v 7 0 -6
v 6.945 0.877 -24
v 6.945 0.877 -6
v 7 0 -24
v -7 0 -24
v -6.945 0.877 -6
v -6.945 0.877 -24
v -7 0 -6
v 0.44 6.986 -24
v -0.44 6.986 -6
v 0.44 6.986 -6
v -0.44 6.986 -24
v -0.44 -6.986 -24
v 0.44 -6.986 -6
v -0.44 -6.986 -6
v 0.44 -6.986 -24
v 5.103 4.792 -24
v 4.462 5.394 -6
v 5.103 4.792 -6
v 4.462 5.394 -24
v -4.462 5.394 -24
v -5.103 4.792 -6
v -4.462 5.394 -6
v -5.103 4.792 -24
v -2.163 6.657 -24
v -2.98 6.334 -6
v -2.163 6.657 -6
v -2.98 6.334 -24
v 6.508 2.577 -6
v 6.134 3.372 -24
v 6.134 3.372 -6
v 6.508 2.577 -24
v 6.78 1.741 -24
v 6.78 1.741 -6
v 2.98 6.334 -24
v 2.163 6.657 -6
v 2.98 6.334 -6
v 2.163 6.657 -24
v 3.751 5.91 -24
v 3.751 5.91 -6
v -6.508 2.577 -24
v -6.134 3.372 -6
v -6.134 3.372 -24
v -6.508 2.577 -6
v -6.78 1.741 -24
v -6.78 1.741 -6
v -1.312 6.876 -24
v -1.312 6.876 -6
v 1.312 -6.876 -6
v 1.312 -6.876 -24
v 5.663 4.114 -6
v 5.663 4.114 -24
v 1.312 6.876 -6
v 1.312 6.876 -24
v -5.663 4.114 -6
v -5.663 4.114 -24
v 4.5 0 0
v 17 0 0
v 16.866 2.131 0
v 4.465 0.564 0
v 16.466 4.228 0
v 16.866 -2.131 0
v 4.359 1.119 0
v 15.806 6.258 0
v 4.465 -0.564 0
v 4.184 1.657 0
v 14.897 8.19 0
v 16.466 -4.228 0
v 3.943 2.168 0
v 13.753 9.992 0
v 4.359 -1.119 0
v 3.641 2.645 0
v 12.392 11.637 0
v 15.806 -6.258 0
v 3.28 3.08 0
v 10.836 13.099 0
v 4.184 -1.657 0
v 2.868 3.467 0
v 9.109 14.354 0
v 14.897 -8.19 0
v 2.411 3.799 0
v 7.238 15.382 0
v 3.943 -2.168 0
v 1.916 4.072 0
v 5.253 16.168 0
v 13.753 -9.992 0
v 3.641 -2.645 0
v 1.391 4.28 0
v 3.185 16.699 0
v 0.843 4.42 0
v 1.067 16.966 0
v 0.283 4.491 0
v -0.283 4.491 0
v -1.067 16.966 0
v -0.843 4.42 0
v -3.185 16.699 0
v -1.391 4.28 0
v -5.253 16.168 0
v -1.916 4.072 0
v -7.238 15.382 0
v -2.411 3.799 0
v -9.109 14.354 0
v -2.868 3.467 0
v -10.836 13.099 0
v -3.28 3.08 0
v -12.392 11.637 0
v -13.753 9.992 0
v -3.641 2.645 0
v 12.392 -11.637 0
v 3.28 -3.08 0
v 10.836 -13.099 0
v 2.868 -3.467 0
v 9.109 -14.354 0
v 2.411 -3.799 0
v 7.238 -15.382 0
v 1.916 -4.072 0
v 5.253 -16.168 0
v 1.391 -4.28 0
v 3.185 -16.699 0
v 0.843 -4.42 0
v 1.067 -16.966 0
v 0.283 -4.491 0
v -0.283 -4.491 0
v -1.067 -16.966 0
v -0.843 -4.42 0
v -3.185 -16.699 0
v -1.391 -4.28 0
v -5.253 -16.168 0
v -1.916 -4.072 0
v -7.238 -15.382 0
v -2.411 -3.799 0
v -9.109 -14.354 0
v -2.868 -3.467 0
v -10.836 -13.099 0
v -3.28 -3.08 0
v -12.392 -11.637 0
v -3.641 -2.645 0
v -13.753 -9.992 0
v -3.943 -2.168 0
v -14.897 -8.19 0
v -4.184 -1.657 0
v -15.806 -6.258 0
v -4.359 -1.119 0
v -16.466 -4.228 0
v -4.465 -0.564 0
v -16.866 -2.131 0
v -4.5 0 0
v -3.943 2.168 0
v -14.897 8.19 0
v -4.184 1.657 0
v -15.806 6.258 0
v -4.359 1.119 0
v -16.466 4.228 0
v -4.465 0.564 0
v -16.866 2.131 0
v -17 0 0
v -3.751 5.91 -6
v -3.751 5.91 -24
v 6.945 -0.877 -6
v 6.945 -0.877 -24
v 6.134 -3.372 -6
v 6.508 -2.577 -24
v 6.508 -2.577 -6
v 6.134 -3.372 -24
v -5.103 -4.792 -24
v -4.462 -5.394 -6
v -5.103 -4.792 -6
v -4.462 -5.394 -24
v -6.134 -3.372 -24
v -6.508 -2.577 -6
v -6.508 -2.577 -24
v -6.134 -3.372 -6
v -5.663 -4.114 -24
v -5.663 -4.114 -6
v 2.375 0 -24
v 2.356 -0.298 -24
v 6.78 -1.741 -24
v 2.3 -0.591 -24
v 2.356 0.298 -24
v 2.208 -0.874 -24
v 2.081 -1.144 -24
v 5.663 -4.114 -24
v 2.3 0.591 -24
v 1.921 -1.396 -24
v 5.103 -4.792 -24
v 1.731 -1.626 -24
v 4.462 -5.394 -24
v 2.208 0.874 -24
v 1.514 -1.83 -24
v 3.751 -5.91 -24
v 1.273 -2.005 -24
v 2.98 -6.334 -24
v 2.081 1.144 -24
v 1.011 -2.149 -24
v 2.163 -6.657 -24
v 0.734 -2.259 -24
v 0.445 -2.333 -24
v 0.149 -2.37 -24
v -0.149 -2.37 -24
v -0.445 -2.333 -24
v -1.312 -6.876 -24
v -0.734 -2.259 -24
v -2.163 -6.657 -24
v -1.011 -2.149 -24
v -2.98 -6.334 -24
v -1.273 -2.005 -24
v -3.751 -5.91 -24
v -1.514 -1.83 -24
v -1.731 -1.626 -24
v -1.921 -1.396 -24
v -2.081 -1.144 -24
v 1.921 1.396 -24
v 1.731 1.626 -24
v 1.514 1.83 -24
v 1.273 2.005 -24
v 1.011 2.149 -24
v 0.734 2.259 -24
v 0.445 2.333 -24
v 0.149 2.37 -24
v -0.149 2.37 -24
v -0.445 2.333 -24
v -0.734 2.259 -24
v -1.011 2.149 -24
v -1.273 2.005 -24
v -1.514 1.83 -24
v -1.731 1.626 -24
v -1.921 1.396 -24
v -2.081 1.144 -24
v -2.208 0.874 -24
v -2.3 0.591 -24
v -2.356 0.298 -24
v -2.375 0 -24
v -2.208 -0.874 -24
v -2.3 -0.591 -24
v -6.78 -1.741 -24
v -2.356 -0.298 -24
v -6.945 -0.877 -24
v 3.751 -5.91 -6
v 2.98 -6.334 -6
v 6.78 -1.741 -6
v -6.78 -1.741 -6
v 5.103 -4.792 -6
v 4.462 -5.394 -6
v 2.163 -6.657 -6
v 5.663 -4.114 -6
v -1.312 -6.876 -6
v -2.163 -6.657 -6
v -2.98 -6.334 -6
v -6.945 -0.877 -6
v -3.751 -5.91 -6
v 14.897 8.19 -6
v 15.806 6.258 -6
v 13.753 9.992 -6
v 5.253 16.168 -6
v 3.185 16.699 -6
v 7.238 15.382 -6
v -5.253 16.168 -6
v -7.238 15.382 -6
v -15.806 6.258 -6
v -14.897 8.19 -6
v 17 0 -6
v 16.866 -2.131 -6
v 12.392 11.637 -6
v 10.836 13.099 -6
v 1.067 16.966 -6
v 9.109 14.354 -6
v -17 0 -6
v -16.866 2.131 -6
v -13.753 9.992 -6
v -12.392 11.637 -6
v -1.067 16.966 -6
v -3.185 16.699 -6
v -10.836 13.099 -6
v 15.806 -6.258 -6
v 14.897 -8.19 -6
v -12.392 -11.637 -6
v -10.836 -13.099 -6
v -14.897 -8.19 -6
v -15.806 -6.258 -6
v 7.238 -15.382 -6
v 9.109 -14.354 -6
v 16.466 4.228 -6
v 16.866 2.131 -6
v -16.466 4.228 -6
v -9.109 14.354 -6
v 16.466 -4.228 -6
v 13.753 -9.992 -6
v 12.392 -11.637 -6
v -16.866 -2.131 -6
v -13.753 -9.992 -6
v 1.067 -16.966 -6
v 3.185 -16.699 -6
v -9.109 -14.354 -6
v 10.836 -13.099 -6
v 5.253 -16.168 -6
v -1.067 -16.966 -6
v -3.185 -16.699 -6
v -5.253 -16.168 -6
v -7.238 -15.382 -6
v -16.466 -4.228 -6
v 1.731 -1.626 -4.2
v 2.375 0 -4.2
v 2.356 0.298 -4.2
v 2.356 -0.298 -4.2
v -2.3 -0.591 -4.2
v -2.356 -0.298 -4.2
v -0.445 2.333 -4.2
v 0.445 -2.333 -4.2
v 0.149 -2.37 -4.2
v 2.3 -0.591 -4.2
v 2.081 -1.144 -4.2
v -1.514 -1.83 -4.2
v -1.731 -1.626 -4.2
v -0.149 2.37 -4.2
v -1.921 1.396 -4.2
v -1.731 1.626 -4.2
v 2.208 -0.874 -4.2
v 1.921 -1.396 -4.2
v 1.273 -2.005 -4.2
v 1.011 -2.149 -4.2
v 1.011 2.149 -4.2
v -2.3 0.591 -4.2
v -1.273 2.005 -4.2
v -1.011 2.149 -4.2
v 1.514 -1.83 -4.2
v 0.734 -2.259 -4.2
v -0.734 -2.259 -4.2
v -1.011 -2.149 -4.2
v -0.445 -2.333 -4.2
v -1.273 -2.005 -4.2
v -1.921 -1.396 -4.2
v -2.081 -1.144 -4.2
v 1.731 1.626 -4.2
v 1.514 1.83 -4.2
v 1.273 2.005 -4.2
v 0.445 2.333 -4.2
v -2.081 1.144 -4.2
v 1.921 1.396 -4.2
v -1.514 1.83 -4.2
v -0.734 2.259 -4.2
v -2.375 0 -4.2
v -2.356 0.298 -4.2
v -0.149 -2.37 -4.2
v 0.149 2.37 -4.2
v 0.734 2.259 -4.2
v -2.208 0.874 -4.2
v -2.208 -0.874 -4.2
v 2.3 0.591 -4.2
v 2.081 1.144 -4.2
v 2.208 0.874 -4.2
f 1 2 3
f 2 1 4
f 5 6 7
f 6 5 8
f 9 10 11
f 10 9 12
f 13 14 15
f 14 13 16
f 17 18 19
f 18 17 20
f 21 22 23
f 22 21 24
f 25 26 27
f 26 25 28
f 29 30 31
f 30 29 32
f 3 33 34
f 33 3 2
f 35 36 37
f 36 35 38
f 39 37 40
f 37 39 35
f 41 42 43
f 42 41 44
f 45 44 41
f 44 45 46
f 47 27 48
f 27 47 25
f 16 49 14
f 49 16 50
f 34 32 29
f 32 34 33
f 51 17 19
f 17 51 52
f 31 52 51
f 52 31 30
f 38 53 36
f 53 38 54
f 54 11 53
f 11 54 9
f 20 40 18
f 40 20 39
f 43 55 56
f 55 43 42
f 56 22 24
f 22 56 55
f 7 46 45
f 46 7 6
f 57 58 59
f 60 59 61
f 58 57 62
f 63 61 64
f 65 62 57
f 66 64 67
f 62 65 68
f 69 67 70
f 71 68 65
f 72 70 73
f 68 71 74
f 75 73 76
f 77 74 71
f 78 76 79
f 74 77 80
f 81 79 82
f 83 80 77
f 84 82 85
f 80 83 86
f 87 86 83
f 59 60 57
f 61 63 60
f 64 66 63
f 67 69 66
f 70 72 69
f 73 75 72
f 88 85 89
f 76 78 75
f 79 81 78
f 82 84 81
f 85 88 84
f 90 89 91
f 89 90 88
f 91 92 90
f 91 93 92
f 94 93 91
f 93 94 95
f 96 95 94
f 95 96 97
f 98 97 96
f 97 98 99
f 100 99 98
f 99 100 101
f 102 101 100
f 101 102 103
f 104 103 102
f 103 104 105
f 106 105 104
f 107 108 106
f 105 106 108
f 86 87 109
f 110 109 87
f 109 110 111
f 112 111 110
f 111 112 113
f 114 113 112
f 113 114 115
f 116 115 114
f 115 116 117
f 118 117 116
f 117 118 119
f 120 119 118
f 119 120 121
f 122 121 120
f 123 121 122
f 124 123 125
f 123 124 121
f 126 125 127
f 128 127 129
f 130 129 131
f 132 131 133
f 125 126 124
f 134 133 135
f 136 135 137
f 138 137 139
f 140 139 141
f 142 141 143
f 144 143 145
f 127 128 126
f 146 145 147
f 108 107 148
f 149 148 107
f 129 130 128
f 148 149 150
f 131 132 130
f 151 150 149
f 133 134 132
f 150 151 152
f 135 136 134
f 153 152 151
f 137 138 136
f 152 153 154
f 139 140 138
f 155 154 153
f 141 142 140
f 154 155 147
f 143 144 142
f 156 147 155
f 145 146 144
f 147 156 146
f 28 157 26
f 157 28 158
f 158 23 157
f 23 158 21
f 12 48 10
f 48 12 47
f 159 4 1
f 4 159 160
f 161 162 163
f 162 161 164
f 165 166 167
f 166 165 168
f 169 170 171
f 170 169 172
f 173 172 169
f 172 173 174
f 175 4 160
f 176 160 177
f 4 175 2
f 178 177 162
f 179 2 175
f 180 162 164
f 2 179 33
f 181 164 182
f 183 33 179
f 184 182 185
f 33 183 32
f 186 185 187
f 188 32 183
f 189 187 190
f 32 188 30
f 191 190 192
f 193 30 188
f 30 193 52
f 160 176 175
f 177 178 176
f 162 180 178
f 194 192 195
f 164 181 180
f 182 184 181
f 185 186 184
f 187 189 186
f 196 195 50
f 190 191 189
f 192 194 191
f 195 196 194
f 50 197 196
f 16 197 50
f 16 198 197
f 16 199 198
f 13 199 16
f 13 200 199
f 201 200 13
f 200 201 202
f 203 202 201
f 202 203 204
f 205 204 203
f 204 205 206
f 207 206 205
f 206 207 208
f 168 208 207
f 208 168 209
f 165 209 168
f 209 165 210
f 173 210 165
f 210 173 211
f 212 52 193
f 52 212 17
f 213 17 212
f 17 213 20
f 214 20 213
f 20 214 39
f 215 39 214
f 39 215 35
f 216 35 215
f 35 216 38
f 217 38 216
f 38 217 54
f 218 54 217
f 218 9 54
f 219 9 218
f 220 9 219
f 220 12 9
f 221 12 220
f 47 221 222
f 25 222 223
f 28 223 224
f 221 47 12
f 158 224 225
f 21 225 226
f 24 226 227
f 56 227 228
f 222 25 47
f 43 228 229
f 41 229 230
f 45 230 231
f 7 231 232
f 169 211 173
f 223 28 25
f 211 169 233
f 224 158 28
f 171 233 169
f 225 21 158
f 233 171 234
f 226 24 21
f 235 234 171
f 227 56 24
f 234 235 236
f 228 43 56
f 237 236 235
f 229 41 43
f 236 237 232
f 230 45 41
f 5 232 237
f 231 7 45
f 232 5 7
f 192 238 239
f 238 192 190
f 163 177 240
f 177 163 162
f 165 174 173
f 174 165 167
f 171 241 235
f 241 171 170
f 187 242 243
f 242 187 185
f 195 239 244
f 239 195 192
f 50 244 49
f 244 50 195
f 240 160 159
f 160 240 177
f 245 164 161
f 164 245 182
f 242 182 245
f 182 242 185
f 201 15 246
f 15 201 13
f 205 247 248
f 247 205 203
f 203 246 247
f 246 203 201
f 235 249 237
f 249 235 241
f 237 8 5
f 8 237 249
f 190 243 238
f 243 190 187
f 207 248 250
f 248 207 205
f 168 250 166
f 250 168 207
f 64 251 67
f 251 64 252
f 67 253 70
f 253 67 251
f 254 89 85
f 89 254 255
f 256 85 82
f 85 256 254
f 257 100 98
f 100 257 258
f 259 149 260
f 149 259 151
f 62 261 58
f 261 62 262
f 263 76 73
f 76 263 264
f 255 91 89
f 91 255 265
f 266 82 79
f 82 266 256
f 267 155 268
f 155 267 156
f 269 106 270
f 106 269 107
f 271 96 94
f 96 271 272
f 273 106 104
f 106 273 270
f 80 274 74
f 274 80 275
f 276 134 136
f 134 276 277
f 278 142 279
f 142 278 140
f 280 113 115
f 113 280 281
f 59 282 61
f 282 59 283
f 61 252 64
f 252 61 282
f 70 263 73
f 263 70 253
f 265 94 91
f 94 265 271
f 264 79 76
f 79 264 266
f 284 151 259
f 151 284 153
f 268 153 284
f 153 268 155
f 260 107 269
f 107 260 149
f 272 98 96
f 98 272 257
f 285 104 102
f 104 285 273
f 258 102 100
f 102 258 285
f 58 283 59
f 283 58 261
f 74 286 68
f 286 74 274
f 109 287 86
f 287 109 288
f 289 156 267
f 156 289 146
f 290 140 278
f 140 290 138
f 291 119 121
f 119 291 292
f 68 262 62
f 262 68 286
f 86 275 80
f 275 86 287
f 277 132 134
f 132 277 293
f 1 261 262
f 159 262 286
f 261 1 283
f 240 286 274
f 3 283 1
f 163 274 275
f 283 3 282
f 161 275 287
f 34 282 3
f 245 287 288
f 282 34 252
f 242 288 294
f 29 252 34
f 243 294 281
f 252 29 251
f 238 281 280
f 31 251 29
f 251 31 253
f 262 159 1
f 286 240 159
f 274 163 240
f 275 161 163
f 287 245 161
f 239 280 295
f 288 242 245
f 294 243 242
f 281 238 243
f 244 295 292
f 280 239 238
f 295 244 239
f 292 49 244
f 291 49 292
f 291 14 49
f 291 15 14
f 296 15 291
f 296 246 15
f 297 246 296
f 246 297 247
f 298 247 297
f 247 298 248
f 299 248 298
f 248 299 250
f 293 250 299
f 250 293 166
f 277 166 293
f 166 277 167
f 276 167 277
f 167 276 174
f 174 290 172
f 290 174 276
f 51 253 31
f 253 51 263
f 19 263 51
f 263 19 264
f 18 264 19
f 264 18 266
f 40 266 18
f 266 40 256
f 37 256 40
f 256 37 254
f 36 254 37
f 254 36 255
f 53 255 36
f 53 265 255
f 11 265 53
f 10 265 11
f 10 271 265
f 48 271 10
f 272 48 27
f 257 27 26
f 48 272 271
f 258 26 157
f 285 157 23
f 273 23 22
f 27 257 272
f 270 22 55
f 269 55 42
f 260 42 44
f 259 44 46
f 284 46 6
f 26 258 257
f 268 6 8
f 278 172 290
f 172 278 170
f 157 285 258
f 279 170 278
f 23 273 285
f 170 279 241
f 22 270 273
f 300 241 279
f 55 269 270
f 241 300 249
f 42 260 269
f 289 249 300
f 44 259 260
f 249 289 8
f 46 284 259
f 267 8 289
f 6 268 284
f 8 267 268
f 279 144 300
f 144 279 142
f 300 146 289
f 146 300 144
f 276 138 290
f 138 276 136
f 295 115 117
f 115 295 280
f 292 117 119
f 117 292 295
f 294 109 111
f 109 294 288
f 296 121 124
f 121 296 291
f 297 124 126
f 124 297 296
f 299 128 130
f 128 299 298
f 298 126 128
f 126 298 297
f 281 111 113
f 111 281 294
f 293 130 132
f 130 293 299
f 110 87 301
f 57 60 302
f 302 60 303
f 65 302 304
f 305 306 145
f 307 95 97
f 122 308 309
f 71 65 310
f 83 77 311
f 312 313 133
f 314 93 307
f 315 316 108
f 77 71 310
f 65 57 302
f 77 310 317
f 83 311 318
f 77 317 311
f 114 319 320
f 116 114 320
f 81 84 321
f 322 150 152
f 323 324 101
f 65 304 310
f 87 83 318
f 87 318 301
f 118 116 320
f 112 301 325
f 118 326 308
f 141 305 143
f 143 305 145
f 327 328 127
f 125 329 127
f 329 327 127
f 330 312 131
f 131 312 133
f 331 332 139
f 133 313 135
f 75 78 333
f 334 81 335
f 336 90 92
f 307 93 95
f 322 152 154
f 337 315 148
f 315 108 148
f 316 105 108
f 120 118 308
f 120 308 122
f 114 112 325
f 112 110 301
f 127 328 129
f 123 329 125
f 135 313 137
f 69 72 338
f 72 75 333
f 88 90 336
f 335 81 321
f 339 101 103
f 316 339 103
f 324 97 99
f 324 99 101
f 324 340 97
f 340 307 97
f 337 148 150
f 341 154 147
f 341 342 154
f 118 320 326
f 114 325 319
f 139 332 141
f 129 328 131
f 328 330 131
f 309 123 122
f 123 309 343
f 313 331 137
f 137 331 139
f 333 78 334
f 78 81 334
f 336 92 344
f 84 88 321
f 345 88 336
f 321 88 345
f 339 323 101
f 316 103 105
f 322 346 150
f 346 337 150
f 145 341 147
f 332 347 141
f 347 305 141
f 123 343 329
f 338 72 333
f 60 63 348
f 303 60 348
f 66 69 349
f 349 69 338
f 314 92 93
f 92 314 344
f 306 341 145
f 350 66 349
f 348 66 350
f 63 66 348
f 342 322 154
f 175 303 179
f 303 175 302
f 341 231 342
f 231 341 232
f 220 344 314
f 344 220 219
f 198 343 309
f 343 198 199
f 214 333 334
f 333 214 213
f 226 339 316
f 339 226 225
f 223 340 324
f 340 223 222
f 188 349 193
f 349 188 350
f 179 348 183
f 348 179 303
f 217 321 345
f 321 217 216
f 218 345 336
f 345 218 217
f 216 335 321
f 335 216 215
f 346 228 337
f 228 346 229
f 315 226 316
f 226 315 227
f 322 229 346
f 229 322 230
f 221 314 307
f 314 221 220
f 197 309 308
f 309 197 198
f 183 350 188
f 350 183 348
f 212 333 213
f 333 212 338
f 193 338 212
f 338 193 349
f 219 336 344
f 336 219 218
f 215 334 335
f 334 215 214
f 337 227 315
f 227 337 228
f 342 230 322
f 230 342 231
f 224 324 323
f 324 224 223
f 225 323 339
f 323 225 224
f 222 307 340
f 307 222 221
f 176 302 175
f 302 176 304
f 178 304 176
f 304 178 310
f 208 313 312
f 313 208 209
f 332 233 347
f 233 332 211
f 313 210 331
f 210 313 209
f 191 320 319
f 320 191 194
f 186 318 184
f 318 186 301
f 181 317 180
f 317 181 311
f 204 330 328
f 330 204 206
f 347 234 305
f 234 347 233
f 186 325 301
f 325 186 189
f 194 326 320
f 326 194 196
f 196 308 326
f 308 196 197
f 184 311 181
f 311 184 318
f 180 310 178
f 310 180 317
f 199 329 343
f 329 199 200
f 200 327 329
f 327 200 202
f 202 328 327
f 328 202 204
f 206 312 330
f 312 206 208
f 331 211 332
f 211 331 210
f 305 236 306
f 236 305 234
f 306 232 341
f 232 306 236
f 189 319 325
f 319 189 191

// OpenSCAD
$fn = 50;


difference() {
	union() {
		translate(v = [0, 0, -24.0000000000]) {
			cylinder(h = 24, r = 7.0000000000);
		}
		translate(v = [0, 0, -6.0000000000]) {
			cylinder(h = 6, r = 17.0000000000);
		}
	}
	union() {
		translate(v = [0, 0, 0]) {
			rotate(a = [0, 0, 0]) {
				difference() {
					union() {
						#translate(v = [0, 0, -24.0000000000]) {
							cylinder(h = 24, r = 2.2500000000);
						}
						#translate(v = [0, 0, -4.2000000000]) {
							cylinder(h = 4.2000000000, r = 7.0000000000, r1 = 2.3750000000, r2 = 4.5000000000);
						}
						#translate(v = [0, 0, -24.0000000000]) {
							cylinder(h = 24, r = 2.3750000000);
						}
						#translate(v = [0, 0, -24.0000000000]) {
							cylinder(h = 24, r = 2.2500000000);
						}
					}
					union();
				}
			}
		}
	}
}
